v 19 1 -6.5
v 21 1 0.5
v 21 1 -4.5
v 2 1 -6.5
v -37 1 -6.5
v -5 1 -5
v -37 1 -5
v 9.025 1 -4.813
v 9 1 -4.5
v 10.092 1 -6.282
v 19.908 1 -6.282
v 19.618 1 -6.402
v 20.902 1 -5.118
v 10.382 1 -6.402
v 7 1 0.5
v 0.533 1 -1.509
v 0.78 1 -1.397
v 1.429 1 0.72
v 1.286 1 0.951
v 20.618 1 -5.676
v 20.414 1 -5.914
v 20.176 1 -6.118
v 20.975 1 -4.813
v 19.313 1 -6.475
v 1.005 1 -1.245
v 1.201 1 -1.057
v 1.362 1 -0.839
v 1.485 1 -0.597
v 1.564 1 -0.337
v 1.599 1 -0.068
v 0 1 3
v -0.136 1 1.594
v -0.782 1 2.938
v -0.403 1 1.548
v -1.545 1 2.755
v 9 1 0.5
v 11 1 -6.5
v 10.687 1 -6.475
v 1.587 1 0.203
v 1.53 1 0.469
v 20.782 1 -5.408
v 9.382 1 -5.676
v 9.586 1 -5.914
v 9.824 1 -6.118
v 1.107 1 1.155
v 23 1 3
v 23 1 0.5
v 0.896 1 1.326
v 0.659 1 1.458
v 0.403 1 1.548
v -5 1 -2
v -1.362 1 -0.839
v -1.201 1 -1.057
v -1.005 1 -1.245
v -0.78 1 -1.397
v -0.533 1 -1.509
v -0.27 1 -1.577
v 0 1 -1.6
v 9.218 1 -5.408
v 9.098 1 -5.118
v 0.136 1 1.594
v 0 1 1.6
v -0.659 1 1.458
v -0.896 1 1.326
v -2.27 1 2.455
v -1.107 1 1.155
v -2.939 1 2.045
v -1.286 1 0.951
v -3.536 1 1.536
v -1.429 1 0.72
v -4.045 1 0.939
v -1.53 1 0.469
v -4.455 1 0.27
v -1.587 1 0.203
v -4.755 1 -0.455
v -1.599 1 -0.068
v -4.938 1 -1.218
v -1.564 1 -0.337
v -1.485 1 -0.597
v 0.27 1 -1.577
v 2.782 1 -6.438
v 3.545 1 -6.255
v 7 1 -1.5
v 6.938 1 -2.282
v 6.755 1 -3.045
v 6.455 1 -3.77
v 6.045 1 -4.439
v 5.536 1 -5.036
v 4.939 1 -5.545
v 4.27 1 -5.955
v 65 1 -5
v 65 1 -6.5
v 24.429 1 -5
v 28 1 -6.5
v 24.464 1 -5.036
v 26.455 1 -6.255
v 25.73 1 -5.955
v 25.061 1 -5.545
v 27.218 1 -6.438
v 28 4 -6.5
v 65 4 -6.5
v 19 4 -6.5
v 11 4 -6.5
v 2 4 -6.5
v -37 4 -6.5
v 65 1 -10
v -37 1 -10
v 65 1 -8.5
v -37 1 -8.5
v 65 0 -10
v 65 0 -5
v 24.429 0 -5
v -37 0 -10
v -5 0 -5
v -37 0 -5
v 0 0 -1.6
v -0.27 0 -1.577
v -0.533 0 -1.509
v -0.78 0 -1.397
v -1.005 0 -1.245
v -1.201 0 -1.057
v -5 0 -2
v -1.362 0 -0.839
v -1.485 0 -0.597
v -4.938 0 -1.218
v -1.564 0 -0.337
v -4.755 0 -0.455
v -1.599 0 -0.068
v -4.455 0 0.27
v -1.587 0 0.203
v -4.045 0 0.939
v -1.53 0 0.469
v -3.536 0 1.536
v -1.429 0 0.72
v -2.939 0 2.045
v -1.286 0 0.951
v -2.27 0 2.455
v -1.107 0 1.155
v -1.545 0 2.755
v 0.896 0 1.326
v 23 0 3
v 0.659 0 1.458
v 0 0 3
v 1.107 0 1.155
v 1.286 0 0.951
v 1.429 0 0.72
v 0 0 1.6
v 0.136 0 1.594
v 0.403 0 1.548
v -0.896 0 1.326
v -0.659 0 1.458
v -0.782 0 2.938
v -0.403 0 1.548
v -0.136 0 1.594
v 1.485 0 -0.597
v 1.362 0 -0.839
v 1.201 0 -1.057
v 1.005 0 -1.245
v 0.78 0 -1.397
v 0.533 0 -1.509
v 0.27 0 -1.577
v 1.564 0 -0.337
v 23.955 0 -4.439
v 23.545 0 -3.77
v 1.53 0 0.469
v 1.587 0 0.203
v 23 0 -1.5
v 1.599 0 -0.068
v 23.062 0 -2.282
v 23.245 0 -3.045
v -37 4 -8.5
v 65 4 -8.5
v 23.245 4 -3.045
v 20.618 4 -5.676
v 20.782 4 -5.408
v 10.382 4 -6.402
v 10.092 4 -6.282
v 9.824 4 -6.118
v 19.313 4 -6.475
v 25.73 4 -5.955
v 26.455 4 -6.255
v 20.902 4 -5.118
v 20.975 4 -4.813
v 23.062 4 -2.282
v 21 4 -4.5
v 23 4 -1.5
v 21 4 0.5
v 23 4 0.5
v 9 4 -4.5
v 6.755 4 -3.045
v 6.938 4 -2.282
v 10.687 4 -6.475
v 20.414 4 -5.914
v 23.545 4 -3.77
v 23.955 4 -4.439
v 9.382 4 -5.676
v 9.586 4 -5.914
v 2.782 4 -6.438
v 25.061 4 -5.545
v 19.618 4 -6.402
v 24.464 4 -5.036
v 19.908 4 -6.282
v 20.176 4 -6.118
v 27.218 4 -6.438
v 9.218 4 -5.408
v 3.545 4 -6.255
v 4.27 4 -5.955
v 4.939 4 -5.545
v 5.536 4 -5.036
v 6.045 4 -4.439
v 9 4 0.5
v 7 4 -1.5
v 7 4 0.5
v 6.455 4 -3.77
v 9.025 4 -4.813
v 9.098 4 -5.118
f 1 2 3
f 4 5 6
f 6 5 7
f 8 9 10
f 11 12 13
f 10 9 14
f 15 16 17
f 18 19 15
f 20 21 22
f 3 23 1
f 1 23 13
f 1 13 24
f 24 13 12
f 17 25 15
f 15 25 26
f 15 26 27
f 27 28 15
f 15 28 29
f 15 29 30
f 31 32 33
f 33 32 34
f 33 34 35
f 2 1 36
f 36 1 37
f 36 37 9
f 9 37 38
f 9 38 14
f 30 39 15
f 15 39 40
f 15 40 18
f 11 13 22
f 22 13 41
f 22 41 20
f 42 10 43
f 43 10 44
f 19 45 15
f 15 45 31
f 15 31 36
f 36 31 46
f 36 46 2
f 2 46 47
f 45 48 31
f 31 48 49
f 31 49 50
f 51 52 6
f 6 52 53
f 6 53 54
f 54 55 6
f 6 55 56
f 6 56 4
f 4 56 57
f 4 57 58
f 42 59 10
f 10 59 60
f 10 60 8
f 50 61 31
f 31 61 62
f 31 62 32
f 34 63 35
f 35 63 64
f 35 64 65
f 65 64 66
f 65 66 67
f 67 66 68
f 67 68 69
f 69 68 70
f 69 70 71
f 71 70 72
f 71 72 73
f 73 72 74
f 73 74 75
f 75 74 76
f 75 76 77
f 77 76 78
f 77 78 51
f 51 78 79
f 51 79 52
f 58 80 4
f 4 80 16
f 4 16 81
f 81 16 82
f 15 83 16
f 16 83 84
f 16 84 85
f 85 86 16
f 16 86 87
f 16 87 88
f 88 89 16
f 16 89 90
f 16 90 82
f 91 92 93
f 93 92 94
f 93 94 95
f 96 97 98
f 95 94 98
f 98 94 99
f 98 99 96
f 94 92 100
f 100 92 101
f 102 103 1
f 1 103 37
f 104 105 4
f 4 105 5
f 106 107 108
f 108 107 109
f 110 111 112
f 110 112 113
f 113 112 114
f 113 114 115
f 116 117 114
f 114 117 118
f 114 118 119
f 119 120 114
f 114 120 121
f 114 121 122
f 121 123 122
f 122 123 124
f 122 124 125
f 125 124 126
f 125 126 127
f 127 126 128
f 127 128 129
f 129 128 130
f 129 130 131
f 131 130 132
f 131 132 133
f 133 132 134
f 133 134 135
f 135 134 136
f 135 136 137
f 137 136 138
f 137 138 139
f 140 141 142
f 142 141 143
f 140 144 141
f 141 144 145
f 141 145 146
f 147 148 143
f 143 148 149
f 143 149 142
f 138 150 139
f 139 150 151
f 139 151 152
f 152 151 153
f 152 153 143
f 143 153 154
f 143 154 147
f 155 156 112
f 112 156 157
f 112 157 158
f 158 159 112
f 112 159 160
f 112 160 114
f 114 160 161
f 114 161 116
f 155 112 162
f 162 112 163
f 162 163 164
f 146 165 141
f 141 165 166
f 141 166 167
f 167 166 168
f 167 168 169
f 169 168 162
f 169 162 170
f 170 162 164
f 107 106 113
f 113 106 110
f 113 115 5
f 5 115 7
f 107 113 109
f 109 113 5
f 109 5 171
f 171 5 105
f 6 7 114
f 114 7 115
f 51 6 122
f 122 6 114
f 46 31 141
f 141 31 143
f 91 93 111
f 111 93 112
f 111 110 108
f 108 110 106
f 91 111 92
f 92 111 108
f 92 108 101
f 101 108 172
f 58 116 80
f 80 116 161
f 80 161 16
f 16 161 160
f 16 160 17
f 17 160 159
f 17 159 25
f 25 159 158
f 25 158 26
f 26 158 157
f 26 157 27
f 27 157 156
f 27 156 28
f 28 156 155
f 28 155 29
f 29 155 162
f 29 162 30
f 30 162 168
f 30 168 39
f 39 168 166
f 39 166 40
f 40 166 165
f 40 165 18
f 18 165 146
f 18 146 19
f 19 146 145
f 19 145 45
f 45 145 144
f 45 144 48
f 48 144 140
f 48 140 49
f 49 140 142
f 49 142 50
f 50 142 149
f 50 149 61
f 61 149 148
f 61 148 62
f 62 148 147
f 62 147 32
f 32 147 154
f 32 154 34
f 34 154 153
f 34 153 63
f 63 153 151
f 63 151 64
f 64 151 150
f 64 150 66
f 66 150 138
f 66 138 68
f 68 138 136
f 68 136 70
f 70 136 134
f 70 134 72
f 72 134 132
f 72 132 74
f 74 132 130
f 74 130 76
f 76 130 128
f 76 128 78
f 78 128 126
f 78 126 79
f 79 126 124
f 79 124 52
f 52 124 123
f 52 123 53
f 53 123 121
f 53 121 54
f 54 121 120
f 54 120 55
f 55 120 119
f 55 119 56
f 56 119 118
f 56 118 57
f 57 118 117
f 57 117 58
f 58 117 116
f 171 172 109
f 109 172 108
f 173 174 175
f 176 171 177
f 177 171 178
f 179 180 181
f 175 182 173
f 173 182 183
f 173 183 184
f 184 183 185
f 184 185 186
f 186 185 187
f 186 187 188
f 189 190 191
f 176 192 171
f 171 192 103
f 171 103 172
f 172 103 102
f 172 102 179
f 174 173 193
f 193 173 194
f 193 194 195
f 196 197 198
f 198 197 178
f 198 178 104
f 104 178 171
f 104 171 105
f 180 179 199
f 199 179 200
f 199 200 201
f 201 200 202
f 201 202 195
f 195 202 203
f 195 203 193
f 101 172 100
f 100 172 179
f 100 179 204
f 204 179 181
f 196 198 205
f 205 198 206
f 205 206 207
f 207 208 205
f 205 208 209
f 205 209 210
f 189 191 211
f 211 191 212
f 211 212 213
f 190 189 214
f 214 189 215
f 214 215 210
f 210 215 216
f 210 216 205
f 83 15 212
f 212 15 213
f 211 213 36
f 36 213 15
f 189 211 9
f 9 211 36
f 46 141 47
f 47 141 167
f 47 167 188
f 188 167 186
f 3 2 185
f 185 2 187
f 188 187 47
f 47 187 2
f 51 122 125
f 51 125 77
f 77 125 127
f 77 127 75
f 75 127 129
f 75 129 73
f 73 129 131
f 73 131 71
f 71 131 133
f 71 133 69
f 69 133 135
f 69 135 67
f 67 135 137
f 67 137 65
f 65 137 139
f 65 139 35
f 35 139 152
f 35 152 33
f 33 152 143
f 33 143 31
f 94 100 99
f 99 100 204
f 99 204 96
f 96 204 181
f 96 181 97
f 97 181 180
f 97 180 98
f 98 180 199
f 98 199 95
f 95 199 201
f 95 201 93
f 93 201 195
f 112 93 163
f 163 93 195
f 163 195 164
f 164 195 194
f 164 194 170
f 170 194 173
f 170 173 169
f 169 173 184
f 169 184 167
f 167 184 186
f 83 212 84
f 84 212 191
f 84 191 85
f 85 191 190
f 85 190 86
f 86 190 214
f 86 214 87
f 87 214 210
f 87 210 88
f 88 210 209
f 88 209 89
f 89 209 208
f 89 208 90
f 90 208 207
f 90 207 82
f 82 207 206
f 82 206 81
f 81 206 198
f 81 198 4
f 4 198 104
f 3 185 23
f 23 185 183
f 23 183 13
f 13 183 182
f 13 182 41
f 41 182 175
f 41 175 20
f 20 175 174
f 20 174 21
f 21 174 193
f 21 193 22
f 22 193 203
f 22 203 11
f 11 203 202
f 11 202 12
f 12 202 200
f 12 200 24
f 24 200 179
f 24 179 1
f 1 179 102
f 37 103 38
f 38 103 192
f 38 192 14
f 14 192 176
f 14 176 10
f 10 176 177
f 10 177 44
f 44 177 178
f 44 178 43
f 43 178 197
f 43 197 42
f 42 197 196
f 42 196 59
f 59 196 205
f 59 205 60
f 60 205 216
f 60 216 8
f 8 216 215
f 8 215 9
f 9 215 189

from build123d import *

# Parameters (mm, degrees)
SKETCH_1_R          = 1.6
EXTRUDE_1_DEPTH     = 1
SKETCH_2_W          = 102
SKETCH_2_H          = 2
EXTRUDE_2_DEPTH     = 3
SKETCH_3_W          = 2
SKETCH_3_H          = 7
EXTRUDE_3_DEPTH     = 3
FILLET_1_R          = 5
FILLET_2_R          = 2
CUT_EXTRUDE_1_REACH = 67.833


with BuildPart() as part:
    # 草图1 → 凸台-拉伸1 (new body)
    with BuildSketch(Plane(origin=(0, 0, 0), x_dir=(1, 0, 0), z_dir=(0, 1, 0))):
        Polygon((-37, 10), (-37, 5), (-5, 5), (-5, -3), (35, -3), (35, 5), (65, 5), (65, 10), align=None)
        with Locations(Location((0, 0, 0), (0, 0, 270))):
            Circle(SKETCH_1_R, mode=Mode.SUBTRACT)
        with Locations(Location((30, 0, 0), (0, 0, 270))):
            Circle(SKETCH_1_R, mode=Mode.SUBTRACT)
    extrude(amount=EXTRUDE_1_DEPTH)

    # 草图2 → 凸台-拉伸2 (add)
    with BuildSketch(Plane(origin=(0, 1, 0), x_dir=(1, 0, 0), z_dir=(0, 1, 0))):
        with Locations((14, 7.5)):
            Rectangle(SKETCH_2_W, SKETCH_2_H)
    extrude(amount=EXTRUDE_2_DEPTH)

    # 草图3 → 凸台-拉伸3 (add)
    with BuildSketch(Plane(origin=(0, 1, 0), x_dir=(1, 0, 0), z_dir=(0, 1, 0))):
        with Locations((8, 3)):
            Rectangle(SKETCH_3_W, SKETCH_3_H)
        with Locations((22, 3)):
            Rectangle(SKETCH_3_W, SKETCH_3_H)
    extrude(amount=EXTRUDE_3_DEPTH)

    # 圆角1
    fillet_1_edges = [part.edges().sort_by_distance(p)[0] for p in [
        (35, 0.5, 3),
        (-5, 0.5, 3),
        (7, 2.5, -6.5),
        (23, 2.5, -6.5),
    ]]
    fillet(fillet_1_edges, radius=FILLET_1_R)

    # 圆角2
    fillet_2_edges = [part.edges().sort_by_distance(p)[0] for p in [
        (9, 2.5, -6.5),
        (21, 2.5, -6.5),
    ]]
    fillet(fillet_2_edges, radius=FILLET_2_R)

    # 草图4 → 切除-拉伸1 (cut, up to next)
    with BuildSketch(Plane(origin=(0, 1, 0), x_dir=(1, 0, 0), z_dir=(0, 1, 0)), mode=Mode.PRIVATE) as cut_extrude_1_sk1:
        with BuildLine():
            Line((23, -3), (30, -3))
            ThreePointArc((30, -3), (33.535533906, -1.535533906), (35, 2))
            Line((35, 2), (35, 5))
            Line((35, 5), (24.429285786, 5))
            ThreePointArc((24.429285786, 5), (23.371092404, 3.390294809), (23, 1.5))
            Line((23, 1.5), (23, -0.5))
            Line((23, -0.5), (23, -3))
        make_face()
    cut_extrude_1_tool1 = extrude(cut_extrude_1_sk1.sketch, amount=-CUT_EXTRUDE_1_REACH, mode=Mode.PRIVATE) & part.part
    add(cut_extrude_1_tool1.solids().sort_by_distance((28.803609, 1, -1.118494))[0], mode=Mode.SUBTRACT)


solid = part.part
